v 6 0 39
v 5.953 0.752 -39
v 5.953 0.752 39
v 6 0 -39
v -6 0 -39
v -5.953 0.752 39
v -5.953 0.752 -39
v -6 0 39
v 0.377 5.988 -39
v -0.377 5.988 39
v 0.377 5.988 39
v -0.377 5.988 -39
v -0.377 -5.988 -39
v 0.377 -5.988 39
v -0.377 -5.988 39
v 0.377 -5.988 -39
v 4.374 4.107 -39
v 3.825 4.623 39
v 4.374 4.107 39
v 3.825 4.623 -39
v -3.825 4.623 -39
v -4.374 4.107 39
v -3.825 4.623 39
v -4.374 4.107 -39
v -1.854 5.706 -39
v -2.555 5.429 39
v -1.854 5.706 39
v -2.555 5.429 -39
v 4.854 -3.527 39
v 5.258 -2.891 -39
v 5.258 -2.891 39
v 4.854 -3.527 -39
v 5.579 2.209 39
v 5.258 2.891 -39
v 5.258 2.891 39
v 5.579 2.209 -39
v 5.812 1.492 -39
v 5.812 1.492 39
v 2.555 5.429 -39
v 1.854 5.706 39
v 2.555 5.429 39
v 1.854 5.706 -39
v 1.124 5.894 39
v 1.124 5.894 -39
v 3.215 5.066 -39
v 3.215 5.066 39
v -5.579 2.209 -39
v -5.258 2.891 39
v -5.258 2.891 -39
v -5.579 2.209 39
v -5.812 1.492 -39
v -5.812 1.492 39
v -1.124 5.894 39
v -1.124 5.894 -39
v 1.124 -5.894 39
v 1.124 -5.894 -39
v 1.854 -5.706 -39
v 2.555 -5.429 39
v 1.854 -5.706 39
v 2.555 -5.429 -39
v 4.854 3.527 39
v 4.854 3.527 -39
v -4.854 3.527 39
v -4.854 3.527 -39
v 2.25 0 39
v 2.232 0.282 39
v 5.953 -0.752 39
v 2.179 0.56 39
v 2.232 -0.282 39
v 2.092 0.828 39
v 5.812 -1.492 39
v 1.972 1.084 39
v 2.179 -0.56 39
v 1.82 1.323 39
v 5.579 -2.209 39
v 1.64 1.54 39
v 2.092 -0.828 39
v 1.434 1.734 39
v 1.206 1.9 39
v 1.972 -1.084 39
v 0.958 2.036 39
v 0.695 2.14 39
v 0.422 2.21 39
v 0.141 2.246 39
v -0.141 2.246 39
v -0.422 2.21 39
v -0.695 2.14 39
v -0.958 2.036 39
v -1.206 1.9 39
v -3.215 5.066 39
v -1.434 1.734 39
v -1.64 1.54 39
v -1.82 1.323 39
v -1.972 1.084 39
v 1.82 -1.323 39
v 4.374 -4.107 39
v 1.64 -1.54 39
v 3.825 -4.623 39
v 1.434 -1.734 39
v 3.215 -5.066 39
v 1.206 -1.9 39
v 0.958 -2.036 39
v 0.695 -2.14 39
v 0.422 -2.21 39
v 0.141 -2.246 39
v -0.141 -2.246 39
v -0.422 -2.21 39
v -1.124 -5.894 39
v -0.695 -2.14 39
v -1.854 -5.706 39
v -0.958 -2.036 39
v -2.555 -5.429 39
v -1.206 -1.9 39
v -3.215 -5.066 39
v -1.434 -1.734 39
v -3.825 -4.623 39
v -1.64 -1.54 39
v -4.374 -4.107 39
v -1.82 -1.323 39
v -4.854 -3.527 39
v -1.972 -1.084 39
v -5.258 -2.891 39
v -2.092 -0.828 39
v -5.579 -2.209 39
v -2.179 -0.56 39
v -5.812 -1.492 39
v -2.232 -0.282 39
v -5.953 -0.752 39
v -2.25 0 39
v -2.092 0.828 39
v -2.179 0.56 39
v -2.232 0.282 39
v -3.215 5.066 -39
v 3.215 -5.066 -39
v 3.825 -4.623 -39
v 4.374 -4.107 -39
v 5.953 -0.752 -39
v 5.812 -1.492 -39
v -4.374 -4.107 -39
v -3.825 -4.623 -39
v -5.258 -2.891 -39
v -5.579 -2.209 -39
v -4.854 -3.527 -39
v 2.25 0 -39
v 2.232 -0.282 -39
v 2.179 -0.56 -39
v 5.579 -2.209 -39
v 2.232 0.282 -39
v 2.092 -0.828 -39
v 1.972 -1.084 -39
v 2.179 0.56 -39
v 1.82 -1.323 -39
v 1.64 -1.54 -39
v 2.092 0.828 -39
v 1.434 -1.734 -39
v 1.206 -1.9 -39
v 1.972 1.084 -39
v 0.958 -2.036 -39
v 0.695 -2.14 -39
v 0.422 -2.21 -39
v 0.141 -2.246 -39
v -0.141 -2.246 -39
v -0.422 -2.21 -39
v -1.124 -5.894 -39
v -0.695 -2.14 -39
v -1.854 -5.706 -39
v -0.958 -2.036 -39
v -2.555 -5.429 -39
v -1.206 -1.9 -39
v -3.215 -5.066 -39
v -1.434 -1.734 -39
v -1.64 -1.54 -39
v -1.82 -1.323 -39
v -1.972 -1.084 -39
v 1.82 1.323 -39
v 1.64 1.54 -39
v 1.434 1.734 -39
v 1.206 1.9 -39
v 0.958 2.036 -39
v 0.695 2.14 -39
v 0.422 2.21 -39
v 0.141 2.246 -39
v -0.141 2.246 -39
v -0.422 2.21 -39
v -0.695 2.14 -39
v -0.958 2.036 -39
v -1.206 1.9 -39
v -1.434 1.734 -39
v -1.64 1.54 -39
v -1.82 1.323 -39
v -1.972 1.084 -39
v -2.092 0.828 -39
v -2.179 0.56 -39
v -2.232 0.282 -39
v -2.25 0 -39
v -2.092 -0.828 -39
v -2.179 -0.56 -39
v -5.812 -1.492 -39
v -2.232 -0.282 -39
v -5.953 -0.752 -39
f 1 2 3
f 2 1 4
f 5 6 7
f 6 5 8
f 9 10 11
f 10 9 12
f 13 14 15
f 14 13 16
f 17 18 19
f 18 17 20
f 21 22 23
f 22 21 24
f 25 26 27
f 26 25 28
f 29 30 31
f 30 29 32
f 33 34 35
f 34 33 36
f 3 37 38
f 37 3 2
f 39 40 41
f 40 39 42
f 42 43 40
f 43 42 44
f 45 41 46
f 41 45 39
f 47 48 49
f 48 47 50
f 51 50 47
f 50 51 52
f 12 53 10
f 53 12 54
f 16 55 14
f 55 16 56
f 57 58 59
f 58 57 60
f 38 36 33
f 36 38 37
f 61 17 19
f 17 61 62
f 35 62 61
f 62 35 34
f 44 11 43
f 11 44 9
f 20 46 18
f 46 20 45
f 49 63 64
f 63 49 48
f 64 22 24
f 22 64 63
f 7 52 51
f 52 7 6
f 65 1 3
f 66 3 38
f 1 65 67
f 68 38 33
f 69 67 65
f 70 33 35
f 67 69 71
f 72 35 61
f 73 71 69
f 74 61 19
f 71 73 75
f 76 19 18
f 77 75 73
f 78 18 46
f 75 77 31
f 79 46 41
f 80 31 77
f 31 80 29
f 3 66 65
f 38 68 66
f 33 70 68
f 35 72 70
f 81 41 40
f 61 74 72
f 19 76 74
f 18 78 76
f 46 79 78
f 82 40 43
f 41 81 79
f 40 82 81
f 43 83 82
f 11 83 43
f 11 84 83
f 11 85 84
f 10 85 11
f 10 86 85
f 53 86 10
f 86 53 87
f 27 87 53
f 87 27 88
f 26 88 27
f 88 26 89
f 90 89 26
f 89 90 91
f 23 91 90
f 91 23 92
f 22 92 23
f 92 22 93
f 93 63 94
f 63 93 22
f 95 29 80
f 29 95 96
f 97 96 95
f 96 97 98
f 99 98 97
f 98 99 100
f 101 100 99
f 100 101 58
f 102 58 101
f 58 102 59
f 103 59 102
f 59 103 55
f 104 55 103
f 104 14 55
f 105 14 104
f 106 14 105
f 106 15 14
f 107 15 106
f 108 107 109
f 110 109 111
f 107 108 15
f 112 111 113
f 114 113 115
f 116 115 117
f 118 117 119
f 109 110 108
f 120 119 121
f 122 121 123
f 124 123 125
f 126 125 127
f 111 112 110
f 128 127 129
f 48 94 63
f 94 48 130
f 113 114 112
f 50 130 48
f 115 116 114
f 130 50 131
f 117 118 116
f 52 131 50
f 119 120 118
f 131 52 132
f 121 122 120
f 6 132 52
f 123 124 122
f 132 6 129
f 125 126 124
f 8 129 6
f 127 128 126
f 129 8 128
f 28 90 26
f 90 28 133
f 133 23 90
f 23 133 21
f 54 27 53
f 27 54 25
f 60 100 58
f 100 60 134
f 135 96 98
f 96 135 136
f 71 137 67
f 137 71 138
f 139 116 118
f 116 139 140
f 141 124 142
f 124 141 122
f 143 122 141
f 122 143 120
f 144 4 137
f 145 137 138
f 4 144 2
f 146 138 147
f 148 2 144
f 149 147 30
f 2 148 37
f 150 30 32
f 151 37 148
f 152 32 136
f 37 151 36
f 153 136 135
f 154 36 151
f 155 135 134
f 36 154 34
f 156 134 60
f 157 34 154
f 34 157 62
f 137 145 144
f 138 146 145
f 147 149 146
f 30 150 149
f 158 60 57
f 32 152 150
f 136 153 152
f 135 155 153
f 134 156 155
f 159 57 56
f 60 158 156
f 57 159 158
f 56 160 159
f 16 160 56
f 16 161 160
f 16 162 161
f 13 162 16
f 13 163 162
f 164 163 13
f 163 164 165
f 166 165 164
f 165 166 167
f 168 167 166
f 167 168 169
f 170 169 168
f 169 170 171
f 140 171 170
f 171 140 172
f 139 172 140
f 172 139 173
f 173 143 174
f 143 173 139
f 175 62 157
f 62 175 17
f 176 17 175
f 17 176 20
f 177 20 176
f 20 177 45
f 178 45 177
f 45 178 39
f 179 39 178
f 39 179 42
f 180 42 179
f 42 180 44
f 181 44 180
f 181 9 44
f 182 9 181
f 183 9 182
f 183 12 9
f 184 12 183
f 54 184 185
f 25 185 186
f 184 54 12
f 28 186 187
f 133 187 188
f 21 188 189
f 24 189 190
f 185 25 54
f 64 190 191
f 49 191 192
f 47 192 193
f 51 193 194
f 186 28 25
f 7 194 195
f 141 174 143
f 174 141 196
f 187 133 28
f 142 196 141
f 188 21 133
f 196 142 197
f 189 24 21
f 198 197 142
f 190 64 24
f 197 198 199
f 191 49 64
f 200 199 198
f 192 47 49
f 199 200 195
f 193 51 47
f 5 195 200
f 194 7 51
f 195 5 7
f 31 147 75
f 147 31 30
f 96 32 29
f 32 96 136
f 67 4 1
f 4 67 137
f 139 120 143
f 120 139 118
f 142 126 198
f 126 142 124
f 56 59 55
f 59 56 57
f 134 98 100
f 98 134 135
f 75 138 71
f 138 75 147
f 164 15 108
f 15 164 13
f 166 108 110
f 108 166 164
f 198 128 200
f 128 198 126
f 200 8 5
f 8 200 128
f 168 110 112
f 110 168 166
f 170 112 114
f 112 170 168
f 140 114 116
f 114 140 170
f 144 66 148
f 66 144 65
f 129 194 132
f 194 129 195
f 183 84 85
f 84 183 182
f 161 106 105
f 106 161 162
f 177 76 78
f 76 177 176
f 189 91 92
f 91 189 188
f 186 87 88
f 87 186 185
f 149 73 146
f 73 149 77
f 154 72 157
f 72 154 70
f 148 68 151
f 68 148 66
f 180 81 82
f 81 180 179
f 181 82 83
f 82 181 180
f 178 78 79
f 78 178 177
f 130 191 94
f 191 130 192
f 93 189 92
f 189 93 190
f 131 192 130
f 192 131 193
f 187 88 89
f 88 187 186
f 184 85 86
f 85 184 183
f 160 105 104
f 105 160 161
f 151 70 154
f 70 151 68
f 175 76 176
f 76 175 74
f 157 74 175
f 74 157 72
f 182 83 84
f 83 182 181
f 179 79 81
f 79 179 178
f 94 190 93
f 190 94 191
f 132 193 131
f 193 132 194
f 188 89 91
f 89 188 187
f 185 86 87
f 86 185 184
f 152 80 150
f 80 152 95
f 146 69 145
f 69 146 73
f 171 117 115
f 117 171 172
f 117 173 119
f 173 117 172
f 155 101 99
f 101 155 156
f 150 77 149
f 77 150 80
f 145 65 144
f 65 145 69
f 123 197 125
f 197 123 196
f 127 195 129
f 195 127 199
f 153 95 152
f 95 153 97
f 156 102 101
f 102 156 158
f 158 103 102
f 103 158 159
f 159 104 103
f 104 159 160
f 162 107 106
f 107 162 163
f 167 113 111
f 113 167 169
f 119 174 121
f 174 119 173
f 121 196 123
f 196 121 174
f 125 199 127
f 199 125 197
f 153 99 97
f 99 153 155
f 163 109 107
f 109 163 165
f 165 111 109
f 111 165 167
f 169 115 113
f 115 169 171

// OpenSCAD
$fn = 50;


difference() {
	union() {
		translate(v = [0, 0, -39.0000000000]) {
			cylinder(h = 78, r = 6.0000000000);
		}
	}
	union() {
		translate(v = [0, 0, -100.0000000000]) {
			cylinder(h = 200, r = 2.2500000000);
		}
	}
}
